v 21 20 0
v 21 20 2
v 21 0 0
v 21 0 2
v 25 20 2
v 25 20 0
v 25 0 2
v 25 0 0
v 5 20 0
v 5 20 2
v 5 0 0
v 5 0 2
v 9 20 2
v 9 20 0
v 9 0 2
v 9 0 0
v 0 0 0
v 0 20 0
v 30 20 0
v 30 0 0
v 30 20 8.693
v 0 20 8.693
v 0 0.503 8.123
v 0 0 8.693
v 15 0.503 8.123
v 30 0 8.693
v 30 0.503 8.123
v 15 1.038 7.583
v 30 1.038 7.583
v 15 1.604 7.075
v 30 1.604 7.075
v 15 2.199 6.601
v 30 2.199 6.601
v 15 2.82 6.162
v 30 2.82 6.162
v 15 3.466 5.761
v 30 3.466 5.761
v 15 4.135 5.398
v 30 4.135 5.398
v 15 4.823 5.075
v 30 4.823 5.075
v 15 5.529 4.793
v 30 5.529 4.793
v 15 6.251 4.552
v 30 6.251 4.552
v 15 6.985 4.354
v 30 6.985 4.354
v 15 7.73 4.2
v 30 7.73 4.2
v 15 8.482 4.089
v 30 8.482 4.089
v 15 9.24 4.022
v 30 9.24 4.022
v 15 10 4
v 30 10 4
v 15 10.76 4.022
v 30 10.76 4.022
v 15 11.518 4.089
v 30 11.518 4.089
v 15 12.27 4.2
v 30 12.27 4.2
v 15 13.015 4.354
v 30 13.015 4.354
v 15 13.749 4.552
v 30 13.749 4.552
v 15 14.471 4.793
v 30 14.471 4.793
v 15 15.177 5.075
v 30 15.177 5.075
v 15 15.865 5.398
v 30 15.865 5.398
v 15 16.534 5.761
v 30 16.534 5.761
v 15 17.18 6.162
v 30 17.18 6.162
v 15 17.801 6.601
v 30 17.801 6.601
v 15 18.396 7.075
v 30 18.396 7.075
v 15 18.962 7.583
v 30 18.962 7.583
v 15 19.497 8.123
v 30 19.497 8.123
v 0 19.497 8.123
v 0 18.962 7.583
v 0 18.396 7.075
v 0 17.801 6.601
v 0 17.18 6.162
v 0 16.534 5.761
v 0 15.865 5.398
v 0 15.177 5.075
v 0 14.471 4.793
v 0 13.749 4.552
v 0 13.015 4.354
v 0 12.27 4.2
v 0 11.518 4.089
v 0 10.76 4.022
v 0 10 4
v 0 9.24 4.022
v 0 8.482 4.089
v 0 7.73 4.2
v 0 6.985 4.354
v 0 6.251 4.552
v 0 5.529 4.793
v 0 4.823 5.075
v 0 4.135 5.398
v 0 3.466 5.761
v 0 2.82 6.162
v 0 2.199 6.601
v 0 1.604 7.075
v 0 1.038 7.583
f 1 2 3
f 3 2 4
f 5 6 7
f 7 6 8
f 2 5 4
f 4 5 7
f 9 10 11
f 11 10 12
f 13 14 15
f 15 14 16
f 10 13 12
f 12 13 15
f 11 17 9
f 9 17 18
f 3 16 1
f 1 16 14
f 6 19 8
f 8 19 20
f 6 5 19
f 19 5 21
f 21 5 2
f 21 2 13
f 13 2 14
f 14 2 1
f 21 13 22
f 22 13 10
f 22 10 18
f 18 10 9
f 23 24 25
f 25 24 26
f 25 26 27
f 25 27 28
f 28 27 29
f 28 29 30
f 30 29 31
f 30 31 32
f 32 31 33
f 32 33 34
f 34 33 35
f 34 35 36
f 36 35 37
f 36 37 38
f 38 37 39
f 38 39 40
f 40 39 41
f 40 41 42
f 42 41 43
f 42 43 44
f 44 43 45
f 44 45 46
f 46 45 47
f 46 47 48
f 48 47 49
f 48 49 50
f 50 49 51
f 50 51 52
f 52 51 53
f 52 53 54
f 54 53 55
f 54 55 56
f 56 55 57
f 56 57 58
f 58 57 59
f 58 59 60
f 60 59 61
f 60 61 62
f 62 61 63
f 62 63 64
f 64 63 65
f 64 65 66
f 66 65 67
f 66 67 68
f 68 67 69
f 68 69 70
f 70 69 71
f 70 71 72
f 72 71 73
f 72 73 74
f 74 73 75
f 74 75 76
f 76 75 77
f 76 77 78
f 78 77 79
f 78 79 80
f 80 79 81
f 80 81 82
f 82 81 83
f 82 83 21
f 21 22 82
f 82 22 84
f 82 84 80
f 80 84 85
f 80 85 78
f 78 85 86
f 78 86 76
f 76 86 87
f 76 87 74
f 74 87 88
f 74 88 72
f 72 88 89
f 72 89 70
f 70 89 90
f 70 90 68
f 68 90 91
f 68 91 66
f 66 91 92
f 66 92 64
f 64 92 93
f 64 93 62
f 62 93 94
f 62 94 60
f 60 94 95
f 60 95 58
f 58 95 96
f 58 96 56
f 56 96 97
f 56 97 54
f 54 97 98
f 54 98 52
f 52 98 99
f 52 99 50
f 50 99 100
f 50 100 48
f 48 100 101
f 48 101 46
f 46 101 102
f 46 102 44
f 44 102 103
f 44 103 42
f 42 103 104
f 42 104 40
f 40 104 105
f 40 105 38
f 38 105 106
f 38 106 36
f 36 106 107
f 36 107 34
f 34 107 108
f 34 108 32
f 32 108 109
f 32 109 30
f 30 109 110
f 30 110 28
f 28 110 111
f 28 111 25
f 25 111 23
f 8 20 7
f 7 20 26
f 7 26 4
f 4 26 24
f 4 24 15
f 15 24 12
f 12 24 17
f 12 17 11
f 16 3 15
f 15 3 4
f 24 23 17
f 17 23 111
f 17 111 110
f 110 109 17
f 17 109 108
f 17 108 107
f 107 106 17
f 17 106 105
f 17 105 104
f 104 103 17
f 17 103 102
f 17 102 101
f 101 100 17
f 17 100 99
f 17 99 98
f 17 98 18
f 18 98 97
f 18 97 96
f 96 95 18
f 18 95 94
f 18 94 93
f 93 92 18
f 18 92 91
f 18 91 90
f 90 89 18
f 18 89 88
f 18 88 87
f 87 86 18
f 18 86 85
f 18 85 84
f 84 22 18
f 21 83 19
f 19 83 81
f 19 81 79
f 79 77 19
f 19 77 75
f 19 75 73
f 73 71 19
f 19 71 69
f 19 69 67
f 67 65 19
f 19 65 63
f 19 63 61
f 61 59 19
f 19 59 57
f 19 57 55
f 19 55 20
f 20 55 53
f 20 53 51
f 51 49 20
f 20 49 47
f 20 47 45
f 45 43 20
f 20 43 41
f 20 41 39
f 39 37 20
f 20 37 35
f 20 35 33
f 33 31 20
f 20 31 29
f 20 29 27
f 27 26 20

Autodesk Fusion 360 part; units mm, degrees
sketch "Sketch1" plane through (0, 0, 0) normal (0, 0, 1) x (1, 0, 0)
sketch "Sketch2" plane through (0, 0, 0) normal (0, 0, 1) x (1, 0, 0)
  line L0 (0, 0) -> (30, 0)
  line L1 (30, 0) -> (30, 20)
  line L2 (30, 20) -> (0, 20)
  line L3 (0, 20) -> (0, 0)
  dimension "d1" = 30
  dimension "d2" = 20
extrude "Extrude1" add sketch "Sketch2" along normal blind 15
sketch "Sketch3" plane through (30, 0, 0) normal (1, 0, 0) x (0, 1, 0)
  line L0 (0, 0) -> (20, 0)
  line L1 (20, 0) -> (20, 15)
  line L2 (20, 15) -> (0, 15)
  line L3 (0, 15) -> (0, 0)
  circle A0 centre (10, 17) radius 13
  dimension "d5" = 26
  dimension "d6" = 17
  dimension "d7" = 10
extrude "Extrude2" cut sketch "Sketch3" against normal blind 60 contours L1 L2 L3 A0 | L1 L2 L3 A0
sketch "Sketch4" plane through (0, 0, 0) normal (0, -1, 0) x (1, 0, 0)
  line L0 (30, 8.6934) -> (0, 8.6934)
  line L1 (0, 8.6934) -> (0, 0)
  line L2 (0, 0) -> (30, 0)
  line L3 (30, 0) -> (30, 8.6934)
  line L4 (5, 0) -> (9, 0)
  line L5 (9, 0) -> (9, 2)
  line L6 (9, 2) -> (5, 2)
  line L7 (5, 2) -> (5, 0)
  line L8 (21, 0) -> (25, 0)
  line L9 (25, 0) -> (25, 2)
  line L10 (25, 2) -> (21, 2)
  line L11 (21, 2) -> (21, 0)
  dimension "d10" = 4
  dimension "d11" = 2
  dimension "d12" = 4
  dimension "d13" = 2
  dimension "d14" = 5
  dimension "d15" = 5
extrude "Extrude3" cut sketch "Sketch4" against normal blind 50 contours L2 L8 L9 L10 L11 | L2 L4 L5 L6 L7
